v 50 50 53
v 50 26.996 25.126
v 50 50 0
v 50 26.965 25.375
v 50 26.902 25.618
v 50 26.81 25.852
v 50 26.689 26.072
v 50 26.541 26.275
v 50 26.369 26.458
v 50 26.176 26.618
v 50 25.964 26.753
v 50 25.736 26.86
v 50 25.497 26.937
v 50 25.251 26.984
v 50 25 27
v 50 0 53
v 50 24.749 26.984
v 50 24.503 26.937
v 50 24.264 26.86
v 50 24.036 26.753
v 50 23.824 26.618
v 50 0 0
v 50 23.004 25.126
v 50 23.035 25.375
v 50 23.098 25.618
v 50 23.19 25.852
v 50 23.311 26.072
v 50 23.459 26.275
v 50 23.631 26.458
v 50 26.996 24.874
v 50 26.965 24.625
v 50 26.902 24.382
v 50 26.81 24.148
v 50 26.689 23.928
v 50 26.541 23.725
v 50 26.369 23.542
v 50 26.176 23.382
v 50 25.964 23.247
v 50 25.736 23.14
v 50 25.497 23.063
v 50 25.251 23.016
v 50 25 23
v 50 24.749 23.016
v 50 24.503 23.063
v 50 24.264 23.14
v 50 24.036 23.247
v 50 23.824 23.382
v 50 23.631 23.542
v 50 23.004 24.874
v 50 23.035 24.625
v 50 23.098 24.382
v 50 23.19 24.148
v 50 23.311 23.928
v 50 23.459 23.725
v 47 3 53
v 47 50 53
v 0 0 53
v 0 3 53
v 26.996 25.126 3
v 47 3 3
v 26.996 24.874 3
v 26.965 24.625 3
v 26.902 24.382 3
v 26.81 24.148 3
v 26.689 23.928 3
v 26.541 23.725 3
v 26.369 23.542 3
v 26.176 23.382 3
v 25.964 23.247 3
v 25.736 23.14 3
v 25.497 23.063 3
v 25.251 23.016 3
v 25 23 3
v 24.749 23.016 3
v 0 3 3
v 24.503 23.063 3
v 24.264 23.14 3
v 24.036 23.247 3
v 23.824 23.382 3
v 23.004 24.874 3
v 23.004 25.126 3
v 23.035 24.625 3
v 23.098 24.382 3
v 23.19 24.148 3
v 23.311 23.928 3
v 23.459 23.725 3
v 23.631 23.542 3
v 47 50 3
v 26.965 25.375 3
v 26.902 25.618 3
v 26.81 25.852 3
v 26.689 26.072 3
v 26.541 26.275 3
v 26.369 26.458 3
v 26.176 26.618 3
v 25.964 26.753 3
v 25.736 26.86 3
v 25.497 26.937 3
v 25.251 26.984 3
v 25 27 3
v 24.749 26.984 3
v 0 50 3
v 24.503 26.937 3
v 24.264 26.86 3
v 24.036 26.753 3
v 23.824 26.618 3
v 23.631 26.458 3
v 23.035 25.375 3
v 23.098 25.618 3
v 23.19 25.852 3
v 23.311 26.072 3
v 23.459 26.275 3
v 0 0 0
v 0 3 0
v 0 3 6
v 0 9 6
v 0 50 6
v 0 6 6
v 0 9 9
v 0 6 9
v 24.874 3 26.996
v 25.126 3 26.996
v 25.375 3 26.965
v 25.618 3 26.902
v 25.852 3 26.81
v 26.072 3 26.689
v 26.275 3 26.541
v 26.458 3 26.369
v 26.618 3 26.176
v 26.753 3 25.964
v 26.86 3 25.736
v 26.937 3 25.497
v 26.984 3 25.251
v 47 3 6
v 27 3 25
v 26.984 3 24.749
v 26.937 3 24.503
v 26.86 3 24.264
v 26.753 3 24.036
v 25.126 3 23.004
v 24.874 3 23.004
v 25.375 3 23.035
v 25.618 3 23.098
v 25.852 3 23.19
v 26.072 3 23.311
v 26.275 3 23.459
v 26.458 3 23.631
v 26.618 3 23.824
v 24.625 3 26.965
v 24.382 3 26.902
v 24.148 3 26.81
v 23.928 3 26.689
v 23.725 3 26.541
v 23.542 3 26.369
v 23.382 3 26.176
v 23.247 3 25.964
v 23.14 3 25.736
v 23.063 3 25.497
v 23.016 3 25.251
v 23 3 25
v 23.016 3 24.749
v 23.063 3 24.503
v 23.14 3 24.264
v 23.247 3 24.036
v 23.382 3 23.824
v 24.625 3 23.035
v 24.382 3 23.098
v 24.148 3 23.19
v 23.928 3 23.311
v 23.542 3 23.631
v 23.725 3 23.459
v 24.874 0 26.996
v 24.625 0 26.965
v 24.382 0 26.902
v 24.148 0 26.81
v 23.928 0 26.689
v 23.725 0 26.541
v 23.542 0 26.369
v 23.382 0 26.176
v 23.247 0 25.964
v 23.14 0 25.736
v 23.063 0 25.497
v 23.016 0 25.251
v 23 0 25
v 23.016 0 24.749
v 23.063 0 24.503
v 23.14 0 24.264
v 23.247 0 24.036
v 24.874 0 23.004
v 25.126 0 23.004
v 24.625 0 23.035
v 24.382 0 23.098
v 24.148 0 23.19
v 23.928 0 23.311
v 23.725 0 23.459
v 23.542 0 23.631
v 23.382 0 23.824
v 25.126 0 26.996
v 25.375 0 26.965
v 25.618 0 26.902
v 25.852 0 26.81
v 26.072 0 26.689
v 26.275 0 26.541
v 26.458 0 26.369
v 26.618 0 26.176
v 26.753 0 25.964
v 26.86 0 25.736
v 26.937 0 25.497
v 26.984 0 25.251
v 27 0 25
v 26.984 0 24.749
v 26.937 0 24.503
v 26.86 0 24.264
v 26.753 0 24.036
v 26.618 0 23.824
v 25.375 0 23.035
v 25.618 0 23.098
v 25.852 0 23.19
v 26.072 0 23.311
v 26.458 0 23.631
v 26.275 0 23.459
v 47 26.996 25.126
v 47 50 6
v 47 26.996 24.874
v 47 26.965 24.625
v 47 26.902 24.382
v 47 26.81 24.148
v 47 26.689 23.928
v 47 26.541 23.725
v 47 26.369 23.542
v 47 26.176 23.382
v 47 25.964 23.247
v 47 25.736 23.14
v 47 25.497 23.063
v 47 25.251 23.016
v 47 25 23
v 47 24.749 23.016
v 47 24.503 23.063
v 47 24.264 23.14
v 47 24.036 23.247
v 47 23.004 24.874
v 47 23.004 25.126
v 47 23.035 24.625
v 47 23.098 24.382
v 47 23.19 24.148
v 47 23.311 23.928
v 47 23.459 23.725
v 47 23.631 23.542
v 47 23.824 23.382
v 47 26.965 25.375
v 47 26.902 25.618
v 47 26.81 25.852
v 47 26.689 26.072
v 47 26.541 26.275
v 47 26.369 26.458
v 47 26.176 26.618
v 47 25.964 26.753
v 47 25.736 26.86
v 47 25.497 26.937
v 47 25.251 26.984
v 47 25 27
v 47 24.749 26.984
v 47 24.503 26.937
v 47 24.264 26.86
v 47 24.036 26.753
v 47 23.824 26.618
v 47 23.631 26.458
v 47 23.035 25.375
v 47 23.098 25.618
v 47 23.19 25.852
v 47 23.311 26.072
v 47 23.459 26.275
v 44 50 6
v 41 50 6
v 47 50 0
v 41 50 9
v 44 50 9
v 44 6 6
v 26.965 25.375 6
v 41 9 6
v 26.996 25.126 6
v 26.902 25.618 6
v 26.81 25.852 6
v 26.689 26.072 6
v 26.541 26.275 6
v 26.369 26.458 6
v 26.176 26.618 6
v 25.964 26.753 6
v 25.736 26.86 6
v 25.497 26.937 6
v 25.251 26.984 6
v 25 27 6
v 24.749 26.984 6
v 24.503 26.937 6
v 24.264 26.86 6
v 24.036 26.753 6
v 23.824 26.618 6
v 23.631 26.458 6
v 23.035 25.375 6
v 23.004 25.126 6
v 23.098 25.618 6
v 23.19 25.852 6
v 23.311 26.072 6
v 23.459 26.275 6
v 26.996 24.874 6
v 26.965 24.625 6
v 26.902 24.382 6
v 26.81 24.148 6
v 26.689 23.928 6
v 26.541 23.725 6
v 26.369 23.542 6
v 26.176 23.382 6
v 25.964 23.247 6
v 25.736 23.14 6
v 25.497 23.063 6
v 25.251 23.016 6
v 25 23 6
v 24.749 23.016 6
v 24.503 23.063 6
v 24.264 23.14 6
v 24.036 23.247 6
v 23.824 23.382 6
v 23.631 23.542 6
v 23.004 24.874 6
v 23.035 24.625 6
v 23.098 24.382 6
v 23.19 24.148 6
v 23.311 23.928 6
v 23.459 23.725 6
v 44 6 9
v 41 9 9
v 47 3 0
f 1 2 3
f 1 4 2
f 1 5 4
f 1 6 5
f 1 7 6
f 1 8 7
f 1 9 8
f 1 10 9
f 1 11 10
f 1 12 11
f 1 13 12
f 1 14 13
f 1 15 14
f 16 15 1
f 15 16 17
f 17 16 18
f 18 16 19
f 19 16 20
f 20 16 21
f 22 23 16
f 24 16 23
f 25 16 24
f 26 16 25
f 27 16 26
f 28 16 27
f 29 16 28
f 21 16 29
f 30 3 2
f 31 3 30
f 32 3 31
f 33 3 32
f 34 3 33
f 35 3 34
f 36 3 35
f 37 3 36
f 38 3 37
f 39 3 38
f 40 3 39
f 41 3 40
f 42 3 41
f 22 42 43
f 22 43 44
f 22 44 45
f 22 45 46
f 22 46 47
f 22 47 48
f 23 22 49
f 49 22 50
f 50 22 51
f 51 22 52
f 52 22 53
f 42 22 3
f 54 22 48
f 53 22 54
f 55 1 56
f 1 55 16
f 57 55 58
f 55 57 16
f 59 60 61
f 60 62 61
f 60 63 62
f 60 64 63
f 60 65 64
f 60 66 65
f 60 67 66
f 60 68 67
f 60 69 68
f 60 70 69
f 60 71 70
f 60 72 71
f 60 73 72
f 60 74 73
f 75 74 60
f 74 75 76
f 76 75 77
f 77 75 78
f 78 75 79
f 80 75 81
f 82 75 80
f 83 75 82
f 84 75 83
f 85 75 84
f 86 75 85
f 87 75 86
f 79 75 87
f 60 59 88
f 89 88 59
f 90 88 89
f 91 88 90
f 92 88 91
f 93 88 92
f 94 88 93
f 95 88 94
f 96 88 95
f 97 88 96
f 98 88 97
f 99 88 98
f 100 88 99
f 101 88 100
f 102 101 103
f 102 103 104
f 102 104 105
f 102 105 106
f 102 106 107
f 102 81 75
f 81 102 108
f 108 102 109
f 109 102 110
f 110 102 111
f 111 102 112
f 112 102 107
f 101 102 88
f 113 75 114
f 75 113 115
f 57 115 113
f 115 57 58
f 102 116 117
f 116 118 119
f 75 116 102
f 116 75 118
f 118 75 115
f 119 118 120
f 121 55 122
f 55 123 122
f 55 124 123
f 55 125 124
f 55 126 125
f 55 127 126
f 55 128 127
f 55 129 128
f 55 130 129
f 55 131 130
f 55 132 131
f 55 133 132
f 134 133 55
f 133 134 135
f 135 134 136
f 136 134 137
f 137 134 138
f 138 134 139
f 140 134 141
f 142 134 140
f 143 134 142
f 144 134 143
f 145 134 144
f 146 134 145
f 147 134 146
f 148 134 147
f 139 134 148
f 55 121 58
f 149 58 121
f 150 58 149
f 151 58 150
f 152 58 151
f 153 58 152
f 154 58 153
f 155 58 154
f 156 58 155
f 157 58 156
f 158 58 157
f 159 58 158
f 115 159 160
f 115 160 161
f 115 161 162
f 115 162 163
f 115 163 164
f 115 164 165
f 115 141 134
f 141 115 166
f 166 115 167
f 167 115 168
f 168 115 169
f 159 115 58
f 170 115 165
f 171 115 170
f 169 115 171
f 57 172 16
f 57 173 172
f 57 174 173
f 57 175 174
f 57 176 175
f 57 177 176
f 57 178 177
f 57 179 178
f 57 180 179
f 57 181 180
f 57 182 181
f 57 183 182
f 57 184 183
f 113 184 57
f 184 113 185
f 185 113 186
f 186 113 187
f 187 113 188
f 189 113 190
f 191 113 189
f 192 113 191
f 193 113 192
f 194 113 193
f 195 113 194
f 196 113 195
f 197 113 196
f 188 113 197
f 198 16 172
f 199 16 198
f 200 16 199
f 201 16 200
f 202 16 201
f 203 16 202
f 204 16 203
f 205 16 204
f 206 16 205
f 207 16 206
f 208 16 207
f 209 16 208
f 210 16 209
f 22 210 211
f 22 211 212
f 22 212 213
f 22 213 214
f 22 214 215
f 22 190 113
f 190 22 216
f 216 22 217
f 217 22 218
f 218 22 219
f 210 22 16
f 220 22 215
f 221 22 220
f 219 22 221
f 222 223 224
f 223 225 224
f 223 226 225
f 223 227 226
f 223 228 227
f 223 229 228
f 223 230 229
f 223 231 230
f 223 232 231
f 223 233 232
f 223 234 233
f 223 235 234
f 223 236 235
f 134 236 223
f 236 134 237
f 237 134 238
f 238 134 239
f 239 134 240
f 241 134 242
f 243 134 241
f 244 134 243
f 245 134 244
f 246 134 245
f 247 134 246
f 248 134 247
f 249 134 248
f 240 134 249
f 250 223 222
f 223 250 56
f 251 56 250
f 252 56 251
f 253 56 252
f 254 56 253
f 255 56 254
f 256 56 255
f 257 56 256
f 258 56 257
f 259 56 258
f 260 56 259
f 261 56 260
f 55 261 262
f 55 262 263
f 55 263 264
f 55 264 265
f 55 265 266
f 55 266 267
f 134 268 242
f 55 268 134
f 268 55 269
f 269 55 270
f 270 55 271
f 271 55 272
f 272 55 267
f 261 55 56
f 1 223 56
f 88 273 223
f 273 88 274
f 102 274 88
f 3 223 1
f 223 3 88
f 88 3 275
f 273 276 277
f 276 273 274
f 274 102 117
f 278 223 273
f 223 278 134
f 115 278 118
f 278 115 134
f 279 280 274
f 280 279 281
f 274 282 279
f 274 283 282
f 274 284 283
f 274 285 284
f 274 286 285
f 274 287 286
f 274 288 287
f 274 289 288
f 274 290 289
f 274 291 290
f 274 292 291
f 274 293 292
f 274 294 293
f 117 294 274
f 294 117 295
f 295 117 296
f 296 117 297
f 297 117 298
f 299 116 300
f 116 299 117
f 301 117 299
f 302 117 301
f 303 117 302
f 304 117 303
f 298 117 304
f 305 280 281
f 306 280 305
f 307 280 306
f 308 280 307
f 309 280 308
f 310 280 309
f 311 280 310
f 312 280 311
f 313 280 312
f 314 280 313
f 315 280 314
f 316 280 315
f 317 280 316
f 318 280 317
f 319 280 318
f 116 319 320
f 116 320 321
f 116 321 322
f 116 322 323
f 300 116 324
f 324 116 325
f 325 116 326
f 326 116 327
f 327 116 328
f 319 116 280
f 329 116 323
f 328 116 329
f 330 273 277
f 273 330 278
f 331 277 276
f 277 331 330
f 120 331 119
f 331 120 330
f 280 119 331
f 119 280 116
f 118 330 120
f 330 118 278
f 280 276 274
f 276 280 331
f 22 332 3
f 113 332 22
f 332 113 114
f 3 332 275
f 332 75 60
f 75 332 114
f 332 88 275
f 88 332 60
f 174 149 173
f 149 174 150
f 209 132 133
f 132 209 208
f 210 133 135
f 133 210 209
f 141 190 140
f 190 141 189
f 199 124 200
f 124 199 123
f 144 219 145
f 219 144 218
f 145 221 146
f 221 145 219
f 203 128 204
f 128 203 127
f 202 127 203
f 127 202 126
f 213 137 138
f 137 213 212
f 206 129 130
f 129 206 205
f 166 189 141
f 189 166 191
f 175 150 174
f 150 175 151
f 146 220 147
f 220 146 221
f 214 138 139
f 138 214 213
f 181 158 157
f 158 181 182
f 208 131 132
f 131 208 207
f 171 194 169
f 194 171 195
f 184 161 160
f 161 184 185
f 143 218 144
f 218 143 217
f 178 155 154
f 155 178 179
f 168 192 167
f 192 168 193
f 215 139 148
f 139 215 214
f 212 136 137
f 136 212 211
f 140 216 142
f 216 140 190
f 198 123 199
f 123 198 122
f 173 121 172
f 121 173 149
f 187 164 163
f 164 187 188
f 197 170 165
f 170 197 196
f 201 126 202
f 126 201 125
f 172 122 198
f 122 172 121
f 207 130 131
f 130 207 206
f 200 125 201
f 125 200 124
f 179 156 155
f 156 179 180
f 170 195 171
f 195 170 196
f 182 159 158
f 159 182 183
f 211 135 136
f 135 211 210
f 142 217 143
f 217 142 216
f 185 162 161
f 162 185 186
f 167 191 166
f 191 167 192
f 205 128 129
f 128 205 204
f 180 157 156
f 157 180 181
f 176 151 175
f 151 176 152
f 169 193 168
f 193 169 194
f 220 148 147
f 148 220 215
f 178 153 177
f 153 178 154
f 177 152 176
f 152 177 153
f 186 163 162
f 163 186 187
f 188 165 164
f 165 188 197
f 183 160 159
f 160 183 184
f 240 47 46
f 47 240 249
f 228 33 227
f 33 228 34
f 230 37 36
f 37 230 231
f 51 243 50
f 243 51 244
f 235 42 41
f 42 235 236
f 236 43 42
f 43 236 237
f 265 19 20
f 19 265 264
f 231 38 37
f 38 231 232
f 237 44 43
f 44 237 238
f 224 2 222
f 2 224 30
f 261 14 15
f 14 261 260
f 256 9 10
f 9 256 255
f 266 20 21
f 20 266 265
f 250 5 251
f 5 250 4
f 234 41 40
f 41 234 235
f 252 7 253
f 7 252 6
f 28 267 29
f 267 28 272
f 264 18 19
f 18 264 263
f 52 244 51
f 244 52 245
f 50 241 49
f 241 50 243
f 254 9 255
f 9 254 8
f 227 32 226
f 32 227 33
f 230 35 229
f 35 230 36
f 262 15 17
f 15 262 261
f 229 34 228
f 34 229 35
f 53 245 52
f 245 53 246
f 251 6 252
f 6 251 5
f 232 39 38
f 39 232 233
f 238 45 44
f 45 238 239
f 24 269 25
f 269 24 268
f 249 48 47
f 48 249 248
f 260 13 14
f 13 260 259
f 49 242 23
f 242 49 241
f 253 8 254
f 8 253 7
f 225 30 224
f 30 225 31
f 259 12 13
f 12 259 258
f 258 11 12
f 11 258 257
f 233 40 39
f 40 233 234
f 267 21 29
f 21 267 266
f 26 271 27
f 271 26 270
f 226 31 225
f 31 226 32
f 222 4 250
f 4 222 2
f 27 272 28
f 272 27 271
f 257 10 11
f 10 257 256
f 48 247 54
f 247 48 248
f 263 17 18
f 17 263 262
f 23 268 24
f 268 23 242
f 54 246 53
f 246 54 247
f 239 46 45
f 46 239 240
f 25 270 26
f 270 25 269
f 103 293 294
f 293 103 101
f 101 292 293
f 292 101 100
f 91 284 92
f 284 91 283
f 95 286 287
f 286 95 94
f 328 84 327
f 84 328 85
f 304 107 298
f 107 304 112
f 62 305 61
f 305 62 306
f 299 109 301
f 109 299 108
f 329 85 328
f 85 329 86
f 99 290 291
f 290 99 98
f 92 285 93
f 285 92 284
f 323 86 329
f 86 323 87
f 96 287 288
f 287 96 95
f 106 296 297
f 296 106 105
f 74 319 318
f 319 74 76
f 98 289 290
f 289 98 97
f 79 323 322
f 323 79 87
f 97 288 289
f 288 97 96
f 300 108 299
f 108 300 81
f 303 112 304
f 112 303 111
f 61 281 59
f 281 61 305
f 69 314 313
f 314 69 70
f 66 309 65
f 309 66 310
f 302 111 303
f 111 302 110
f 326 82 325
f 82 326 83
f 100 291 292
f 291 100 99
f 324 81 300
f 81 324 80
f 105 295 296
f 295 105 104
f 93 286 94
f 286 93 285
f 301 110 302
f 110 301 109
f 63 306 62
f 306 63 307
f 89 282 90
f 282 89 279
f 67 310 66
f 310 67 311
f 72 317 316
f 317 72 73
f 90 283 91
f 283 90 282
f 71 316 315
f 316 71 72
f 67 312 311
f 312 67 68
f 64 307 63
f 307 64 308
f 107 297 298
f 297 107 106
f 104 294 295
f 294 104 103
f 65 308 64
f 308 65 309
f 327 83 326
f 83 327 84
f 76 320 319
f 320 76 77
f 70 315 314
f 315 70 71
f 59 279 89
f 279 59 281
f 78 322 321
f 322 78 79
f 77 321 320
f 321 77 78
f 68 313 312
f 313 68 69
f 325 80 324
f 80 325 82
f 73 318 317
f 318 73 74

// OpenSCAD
// file: enclosure_lib.scad
module SimpleCorner(wallWidth = 3,
                    totalWidth = 50,
                    totalHeight = 50,
                    totalDepth = 50,
                    gutterWidth = 3)
{
    // back wall
    cube([totalWidth,wallWidth,totalHeight]);
    // side wall
    translate([totalWidth,0,0])
        rotate([0,0,90])
            cube([totalDepth,wallWidth,totalHeight]);
    // base
    translate([0,totalDepth,0])
        rotate([90, 0, 0])
            cube([totalWidth,
                  wallWidth,
                  totalDepth]);
    // back gutter
    translate([0,
               wallWidth + gutterWidth,
               wallWidth * 2])
        rotate([0,90,0])
            cube([wallWidth, 
                  wallWidth, 
                  totalWidth - wallWidth - gutterWidth]);
    // side gutter
    translate([totalWidth - 2 * wallWidth - gutterWidth,
               totalDepth,
               wallWidth])
        rotate([90,0,0])
            cube([wallWidth, 
                  wallWidth, 
                  totalDepth - wallWidth - gutterWidth]);
    // gutter fill
    cube(3);
}
module Cone(holeRadius = 3)
{
    centerRadius    = 3;
    centerHeight    = 2;
    masterRadius    = 18;
    totalHeight     = 3;
    tanAlpha        = totalHeight / (masterRadius - centerRadius);
    holeHeight      = tanAlpha * (masterRadius - holeRadius);
    rotate_extrude()
        polygon(points=[
            [0, 0],
            [masterRadius, 0],
            [holeRadius, holeHeight],
            [holeRadius, 1],
            [0, 1]
        ]);
}
module Base(width = 50,
       depth = 50,
       halfHeight = 3)
{
    cube([width, depth, halfHeight]);
    translate([width / 2, depth / 2, halfHeight])
        Cone(3.5);
}

module BasedCorner(wallWidth = 3,
                   width = 50,
                   height = 50,
                   depth = 50,
                   gutterWidth = 3.4)
{
    translate([0, 0, wallWidth])
        union() {
            SimpleCorner(wallWidth, 
                         width, 
                         height - wallWidth, 
                         depth,
                         gutterWidth);
            translate([0,0, -wallWidth])
                difference() {
                    cube([width, depth, wallWidth]);
                    translate([width/2, depth/2, -.01])
                        Cone();
            }
        }
}

module top_profile(gutterWidth = 3) 
{
    polygon([
        [0, 0],
        [0, 9],
        [6, 9],
        [6, 6],
        [21,6],
        [21,3],
        [6 + gutterWidth, 3],
        [6 + gutterWidth, 0],
        [3 + gutterWidth, 0],
        [3 + gutterWidth, 3],
        [3, 3],
        [3, 0],
    ]);
}


module CableCoverBorderProfile(
    width = 6,
    borderHeight = 3,
    gutterHeight = 3,
    gutterWidth = 3)
{
    polygon([
        [0,0],
        [width, 0],
        [width, borderHeight],
        [width - gutterWidth, borderHeight],
        [width - gutterWidth, borderHeight + gutterHeight],
        [width, borderHeight + gutterHeight],
        [width, 2 * borderHeight + gutterHeight],
        [0, 2 * borderHeight + gutterHeight]
    ]);
}
module CableCoverBorderLinear(height = 10)
{
    linear_extrude(height)
        CableCoverBorderProfile();
}
union()
{
    //rotate_extrude(180)
    //    CableCoverBorderProfile();
    CableCoverBorderLinear();
    translate([-6, 3, 0])
        cube([6, 3, 10]);
    translate([-6, 9, 0])
        rotate([0, 0, 180])
            CableCoverBorderLinear();
}
// main file
use <enclosure_lib.scad>

$fn=50;
wall_h = 3;
h=50;
d=50;
w=50;
gutter_width=3;
difference() {
    union() 
    {
        translate([0, 0, wall_h])
            SimpleCorner(wall_h, w, h, d, gutter_width);
        translate([0, 0, 0])
            cube([w, wall_h, wall_h]);
        translate([w - wall_h, 0, 0])
            cube([wall_h, w, wall_h]);
    }
    // back hole
    translate([
        w / 2 ,
        wall_h + 1,
        h / 2
    ])
        rotate([90])
            cylinder(5, 2, 2);
    // side hole
    translate([
        w - wall_h -1,
        w / 2,
        h / 2
    ])
        rotate([0, 90])
            cylinder(5, 2, 2);
    // bottom hole
    translate([
        w / 2,
        d / 2,
        wall_h - 1
    ])
        rotate([0, 0, 90])
            cylinder(5, 2, 2);
}
